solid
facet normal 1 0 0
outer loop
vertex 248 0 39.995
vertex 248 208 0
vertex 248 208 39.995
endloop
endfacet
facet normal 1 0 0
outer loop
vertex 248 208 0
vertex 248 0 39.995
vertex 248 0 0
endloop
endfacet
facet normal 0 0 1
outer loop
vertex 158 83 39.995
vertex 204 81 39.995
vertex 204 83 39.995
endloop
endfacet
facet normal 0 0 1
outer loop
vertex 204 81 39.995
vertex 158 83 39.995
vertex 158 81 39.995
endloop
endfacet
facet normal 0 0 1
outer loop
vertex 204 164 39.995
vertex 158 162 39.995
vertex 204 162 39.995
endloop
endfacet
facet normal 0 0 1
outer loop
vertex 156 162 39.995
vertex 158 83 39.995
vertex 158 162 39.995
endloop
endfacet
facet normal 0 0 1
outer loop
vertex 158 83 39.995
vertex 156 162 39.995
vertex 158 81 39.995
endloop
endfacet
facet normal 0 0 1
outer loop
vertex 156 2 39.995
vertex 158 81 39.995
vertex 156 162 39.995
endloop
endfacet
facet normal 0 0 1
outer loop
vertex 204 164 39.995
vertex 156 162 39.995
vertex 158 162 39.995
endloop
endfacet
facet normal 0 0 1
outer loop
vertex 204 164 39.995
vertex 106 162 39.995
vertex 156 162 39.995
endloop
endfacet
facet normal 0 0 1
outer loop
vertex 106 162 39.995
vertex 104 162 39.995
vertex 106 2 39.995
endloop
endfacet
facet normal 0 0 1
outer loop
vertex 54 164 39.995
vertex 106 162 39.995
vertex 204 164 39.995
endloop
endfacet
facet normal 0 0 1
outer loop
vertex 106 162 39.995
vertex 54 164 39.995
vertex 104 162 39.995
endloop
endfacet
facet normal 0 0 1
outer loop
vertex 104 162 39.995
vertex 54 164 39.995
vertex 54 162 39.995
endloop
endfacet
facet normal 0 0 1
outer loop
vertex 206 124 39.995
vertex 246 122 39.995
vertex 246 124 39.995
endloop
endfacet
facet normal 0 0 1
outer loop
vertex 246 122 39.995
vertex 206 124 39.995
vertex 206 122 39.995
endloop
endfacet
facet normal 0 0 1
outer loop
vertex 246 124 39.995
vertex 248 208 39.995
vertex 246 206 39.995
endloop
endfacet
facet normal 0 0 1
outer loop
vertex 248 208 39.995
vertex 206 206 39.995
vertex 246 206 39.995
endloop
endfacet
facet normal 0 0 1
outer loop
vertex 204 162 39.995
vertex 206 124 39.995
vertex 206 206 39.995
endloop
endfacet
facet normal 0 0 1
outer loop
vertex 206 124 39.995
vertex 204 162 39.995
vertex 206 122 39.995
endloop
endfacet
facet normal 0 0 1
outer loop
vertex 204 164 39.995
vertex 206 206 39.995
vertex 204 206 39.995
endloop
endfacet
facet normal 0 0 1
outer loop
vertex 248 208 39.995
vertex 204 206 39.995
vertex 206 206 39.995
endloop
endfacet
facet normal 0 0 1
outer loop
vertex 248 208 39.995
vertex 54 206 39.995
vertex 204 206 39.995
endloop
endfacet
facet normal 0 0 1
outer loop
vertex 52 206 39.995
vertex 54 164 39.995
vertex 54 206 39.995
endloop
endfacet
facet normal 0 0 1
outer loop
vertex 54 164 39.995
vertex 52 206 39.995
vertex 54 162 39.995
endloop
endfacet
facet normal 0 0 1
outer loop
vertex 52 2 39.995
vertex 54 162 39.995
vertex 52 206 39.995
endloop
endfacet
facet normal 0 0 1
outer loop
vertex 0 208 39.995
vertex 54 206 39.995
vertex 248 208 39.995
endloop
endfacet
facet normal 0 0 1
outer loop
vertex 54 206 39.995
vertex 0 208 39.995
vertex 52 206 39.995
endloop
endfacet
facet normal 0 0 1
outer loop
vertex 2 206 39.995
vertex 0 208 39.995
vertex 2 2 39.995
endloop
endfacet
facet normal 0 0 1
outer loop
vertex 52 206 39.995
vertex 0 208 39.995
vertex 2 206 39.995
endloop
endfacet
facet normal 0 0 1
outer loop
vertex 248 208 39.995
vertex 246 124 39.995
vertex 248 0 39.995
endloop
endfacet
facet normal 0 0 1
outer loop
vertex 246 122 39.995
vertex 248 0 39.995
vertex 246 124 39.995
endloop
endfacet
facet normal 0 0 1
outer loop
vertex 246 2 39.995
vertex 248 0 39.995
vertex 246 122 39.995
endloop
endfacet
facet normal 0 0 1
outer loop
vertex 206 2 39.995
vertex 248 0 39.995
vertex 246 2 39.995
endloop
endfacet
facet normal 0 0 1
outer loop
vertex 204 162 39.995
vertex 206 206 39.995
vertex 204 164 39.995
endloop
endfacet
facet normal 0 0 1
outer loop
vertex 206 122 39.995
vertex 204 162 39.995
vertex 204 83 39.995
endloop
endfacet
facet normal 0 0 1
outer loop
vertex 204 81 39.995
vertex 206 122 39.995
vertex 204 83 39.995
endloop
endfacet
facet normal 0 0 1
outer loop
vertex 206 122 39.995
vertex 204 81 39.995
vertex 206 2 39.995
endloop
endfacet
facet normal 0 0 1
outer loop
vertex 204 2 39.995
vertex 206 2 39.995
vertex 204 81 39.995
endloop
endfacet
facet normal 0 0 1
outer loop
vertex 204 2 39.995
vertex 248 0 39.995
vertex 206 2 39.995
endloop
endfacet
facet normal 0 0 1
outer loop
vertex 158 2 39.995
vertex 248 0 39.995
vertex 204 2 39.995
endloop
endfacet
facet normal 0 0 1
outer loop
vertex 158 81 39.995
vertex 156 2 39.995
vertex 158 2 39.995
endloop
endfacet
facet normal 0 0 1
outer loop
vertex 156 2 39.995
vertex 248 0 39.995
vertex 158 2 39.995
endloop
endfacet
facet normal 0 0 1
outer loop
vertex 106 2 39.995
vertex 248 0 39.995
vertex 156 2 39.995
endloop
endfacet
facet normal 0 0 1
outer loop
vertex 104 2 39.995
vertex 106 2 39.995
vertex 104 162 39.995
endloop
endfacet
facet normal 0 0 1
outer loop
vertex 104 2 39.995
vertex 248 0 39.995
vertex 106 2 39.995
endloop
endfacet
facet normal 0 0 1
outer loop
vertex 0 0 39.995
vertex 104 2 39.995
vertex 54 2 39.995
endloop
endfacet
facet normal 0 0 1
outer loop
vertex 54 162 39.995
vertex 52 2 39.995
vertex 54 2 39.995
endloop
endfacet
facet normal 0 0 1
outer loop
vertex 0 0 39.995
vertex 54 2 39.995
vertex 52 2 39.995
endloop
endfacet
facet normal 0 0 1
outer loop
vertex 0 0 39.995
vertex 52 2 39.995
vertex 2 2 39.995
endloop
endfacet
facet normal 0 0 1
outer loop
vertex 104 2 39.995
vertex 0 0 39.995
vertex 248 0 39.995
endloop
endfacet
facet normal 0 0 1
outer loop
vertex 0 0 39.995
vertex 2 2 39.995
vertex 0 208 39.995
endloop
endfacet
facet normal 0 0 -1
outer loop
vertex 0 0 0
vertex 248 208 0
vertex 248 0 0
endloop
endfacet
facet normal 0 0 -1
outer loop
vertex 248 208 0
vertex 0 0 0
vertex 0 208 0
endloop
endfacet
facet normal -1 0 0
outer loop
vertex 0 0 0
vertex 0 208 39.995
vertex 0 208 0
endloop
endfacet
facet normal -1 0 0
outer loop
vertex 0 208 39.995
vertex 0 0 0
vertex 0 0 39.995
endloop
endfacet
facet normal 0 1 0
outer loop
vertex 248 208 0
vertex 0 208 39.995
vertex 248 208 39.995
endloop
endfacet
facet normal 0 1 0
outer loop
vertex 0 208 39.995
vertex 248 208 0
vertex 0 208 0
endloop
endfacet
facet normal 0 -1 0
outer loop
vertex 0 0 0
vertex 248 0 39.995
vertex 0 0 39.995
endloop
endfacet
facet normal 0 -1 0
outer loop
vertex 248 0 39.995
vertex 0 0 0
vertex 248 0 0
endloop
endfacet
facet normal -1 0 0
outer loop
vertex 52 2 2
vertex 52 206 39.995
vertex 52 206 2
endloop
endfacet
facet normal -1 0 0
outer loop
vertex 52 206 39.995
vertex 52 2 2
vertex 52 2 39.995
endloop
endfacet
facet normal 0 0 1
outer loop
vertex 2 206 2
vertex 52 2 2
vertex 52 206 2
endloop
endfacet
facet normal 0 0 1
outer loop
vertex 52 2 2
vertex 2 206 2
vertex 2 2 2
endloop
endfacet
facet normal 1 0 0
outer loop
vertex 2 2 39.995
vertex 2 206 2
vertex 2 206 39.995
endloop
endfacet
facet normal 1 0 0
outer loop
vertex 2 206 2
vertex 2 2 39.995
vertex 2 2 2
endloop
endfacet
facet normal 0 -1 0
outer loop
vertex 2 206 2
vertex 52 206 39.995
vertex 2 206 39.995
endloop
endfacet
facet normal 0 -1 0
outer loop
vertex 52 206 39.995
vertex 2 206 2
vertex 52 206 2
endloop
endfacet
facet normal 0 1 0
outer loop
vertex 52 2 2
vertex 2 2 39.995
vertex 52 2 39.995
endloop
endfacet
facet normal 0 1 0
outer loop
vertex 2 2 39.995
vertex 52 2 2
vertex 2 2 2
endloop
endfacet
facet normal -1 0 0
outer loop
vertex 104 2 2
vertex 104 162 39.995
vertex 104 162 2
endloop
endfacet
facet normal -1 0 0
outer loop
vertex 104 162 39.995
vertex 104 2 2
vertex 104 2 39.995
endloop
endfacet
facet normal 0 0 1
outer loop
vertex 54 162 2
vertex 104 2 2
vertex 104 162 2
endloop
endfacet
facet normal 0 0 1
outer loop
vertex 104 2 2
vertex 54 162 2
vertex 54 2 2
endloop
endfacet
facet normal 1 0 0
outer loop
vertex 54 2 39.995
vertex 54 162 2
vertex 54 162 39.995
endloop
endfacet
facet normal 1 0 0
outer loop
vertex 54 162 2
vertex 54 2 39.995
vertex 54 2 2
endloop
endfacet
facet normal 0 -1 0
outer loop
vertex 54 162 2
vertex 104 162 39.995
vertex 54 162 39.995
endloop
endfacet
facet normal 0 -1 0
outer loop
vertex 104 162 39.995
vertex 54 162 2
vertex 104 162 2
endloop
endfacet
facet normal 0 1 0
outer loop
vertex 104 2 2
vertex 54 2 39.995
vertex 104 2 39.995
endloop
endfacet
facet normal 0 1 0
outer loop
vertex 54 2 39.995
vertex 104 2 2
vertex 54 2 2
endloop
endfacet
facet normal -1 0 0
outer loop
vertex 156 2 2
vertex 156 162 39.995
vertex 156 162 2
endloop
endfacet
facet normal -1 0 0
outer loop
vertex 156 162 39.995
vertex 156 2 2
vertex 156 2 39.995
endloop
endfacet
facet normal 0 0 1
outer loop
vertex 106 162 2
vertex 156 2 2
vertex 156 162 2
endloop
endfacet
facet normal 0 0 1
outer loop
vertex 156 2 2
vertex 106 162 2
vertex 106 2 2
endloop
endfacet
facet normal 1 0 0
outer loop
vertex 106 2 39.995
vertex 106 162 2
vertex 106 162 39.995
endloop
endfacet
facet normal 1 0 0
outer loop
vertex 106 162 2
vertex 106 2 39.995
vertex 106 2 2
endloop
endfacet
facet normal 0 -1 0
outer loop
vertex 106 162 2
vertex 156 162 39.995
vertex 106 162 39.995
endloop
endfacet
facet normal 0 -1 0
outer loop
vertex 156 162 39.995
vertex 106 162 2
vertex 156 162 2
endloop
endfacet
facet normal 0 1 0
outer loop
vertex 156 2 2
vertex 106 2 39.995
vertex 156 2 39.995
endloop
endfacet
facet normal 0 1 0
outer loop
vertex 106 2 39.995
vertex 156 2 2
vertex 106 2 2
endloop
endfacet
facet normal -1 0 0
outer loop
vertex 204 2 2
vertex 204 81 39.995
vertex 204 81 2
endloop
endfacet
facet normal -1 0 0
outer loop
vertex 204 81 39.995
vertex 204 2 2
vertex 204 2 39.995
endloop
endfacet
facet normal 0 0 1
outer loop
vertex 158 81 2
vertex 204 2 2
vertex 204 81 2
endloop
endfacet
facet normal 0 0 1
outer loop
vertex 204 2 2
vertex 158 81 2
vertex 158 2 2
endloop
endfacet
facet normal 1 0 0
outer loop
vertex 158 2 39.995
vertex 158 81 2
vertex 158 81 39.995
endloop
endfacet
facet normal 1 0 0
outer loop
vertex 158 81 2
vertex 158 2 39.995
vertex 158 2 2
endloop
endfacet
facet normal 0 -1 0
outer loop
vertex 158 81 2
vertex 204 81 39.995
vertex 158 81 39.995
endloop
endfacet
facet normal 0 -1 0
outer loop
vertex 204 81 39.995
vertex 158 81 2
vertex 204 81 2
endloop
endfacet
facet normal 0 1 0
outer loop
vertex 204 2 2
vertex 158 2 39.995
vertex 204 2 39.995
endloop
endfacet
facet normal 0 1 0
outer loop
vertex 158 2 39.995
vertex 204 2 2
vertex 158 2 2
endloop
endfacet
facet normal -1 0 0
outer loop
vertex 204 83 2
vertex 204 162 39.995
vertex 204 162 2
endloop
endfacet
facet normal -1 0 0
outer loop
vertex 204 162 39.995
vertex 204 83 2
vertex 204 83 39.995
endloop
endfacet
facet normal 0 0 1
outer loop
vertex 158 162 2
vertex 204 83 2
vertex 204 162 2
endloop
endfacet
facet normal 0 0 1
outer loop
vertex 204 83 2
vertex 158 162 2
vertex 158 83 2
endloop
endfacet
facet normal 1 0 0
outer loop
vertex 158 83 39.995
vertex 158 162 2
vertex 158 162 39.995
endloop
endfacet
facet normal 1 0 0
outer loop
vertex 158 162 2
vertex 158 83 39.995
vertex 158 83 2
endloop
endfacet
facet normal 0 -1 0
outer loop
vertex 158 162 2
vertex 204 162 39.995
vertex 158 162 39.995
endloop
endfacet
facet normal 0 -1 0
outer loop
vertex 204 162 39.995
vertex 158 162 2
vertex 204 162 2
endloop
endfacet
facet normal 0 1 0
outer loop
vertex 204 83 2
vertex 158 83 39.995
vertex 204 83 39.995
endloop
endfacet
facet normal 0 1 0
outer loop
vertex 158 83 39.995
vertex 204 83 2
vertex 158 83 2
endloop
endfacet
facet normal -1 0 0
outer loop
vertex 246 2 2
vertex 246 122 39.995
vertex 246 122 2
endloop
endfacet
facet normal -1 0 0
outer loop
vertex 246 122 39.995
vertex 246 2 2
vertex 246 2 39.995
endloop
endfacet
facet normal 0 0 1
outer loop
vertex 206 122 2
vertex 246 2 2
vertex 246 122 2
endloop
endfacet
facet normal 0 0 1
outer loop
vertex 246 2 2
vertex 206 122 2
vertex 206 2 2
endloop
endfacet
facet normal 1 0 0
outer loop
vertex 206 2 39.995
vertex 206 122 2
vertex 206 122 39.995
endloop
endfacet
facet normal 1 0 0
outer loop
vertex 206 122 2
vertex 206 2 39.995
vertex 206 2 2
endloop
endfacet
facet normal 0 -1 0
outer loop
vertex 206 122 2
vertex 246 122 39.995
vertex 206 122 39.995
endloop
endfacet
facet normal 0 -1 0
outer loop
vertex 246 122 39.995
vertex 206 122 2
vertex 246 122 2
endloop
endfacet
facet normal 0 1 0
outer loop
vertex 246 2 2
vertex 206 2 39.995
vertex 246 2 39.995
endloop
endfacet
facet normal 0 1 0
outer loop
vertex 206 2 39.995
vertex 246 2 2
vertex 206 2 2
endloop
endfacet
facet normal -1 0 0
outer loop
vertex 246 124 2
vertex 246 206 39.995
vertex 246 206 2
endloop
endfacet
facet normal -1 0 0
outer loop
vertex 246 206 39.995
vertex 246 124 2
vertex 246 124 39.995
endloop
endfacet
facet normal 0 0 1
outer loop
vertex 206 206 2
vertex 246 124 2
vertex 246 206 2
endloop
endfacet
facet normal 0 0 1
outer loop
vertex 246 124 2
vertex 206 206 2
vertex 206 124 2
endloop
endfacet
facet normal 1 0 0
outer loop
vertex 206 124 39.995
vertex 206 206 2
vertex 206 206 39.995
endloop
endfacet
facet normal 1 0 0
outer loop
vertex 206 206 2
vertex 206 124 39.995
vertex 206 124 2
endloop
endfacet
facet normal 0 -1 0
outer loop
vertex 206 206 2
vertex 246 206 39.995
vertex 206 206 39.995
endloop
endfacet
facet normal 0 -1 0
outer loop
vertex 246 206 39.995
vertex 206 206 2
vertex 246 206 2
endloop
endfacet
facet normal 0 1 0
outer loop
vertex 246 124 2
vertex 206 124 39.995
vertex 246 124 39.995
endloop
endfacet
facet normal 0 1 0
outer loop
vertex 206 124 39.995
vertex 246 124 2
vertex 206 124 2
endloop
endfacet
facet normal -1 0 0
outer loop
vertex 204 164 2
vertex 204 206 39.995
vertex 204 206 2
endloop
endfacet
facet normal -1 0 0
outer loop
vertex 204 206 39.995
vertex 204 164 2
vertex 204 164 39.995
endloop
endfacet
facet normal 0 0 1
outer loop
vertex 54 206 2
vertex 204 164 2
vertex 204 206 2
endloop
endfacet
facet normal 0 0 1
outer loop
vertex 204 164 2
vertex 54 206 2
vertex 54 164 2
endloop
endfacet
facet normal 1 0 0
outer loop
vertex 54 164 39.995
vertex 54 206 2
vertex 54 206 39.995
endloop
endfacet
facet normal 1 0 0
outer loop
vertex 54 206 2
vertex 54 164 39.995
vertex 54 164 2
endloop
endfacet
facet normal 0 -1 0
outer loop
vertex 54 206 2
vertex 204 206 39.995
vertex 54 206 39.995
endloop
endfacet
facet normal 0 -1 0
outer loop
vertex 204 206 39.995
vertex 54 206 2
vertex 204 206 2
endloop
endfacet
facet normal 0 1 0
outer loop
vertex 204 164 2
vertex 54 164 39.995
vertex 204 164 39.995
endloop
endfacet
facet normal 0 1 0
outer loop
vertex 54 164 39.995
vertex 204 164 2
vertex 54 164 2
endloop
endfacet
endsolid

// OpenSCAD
height=40;
thickness=2;

difference() {

cube([248,208,height-0.005]);

  translate([2,2,2]) cube([50,204,height]); // crayons
  translate([54,2,2]) cube([50,160,height]); // stylo
  translate([106,2,2]) cube([50,160,height]); // colle
  translate([158,2,2]) cube([46,79,height]); // divers
  translate([158,83,2]) cube([46,79,height]); // divers
  translate([206,2,2]) cube([40,120,height]); // scotch
  translate([206,124,2]) cube([40,82,height]); // cachet
  translate([54,164,2]) cube([150,42,height]); // surligneur



}
